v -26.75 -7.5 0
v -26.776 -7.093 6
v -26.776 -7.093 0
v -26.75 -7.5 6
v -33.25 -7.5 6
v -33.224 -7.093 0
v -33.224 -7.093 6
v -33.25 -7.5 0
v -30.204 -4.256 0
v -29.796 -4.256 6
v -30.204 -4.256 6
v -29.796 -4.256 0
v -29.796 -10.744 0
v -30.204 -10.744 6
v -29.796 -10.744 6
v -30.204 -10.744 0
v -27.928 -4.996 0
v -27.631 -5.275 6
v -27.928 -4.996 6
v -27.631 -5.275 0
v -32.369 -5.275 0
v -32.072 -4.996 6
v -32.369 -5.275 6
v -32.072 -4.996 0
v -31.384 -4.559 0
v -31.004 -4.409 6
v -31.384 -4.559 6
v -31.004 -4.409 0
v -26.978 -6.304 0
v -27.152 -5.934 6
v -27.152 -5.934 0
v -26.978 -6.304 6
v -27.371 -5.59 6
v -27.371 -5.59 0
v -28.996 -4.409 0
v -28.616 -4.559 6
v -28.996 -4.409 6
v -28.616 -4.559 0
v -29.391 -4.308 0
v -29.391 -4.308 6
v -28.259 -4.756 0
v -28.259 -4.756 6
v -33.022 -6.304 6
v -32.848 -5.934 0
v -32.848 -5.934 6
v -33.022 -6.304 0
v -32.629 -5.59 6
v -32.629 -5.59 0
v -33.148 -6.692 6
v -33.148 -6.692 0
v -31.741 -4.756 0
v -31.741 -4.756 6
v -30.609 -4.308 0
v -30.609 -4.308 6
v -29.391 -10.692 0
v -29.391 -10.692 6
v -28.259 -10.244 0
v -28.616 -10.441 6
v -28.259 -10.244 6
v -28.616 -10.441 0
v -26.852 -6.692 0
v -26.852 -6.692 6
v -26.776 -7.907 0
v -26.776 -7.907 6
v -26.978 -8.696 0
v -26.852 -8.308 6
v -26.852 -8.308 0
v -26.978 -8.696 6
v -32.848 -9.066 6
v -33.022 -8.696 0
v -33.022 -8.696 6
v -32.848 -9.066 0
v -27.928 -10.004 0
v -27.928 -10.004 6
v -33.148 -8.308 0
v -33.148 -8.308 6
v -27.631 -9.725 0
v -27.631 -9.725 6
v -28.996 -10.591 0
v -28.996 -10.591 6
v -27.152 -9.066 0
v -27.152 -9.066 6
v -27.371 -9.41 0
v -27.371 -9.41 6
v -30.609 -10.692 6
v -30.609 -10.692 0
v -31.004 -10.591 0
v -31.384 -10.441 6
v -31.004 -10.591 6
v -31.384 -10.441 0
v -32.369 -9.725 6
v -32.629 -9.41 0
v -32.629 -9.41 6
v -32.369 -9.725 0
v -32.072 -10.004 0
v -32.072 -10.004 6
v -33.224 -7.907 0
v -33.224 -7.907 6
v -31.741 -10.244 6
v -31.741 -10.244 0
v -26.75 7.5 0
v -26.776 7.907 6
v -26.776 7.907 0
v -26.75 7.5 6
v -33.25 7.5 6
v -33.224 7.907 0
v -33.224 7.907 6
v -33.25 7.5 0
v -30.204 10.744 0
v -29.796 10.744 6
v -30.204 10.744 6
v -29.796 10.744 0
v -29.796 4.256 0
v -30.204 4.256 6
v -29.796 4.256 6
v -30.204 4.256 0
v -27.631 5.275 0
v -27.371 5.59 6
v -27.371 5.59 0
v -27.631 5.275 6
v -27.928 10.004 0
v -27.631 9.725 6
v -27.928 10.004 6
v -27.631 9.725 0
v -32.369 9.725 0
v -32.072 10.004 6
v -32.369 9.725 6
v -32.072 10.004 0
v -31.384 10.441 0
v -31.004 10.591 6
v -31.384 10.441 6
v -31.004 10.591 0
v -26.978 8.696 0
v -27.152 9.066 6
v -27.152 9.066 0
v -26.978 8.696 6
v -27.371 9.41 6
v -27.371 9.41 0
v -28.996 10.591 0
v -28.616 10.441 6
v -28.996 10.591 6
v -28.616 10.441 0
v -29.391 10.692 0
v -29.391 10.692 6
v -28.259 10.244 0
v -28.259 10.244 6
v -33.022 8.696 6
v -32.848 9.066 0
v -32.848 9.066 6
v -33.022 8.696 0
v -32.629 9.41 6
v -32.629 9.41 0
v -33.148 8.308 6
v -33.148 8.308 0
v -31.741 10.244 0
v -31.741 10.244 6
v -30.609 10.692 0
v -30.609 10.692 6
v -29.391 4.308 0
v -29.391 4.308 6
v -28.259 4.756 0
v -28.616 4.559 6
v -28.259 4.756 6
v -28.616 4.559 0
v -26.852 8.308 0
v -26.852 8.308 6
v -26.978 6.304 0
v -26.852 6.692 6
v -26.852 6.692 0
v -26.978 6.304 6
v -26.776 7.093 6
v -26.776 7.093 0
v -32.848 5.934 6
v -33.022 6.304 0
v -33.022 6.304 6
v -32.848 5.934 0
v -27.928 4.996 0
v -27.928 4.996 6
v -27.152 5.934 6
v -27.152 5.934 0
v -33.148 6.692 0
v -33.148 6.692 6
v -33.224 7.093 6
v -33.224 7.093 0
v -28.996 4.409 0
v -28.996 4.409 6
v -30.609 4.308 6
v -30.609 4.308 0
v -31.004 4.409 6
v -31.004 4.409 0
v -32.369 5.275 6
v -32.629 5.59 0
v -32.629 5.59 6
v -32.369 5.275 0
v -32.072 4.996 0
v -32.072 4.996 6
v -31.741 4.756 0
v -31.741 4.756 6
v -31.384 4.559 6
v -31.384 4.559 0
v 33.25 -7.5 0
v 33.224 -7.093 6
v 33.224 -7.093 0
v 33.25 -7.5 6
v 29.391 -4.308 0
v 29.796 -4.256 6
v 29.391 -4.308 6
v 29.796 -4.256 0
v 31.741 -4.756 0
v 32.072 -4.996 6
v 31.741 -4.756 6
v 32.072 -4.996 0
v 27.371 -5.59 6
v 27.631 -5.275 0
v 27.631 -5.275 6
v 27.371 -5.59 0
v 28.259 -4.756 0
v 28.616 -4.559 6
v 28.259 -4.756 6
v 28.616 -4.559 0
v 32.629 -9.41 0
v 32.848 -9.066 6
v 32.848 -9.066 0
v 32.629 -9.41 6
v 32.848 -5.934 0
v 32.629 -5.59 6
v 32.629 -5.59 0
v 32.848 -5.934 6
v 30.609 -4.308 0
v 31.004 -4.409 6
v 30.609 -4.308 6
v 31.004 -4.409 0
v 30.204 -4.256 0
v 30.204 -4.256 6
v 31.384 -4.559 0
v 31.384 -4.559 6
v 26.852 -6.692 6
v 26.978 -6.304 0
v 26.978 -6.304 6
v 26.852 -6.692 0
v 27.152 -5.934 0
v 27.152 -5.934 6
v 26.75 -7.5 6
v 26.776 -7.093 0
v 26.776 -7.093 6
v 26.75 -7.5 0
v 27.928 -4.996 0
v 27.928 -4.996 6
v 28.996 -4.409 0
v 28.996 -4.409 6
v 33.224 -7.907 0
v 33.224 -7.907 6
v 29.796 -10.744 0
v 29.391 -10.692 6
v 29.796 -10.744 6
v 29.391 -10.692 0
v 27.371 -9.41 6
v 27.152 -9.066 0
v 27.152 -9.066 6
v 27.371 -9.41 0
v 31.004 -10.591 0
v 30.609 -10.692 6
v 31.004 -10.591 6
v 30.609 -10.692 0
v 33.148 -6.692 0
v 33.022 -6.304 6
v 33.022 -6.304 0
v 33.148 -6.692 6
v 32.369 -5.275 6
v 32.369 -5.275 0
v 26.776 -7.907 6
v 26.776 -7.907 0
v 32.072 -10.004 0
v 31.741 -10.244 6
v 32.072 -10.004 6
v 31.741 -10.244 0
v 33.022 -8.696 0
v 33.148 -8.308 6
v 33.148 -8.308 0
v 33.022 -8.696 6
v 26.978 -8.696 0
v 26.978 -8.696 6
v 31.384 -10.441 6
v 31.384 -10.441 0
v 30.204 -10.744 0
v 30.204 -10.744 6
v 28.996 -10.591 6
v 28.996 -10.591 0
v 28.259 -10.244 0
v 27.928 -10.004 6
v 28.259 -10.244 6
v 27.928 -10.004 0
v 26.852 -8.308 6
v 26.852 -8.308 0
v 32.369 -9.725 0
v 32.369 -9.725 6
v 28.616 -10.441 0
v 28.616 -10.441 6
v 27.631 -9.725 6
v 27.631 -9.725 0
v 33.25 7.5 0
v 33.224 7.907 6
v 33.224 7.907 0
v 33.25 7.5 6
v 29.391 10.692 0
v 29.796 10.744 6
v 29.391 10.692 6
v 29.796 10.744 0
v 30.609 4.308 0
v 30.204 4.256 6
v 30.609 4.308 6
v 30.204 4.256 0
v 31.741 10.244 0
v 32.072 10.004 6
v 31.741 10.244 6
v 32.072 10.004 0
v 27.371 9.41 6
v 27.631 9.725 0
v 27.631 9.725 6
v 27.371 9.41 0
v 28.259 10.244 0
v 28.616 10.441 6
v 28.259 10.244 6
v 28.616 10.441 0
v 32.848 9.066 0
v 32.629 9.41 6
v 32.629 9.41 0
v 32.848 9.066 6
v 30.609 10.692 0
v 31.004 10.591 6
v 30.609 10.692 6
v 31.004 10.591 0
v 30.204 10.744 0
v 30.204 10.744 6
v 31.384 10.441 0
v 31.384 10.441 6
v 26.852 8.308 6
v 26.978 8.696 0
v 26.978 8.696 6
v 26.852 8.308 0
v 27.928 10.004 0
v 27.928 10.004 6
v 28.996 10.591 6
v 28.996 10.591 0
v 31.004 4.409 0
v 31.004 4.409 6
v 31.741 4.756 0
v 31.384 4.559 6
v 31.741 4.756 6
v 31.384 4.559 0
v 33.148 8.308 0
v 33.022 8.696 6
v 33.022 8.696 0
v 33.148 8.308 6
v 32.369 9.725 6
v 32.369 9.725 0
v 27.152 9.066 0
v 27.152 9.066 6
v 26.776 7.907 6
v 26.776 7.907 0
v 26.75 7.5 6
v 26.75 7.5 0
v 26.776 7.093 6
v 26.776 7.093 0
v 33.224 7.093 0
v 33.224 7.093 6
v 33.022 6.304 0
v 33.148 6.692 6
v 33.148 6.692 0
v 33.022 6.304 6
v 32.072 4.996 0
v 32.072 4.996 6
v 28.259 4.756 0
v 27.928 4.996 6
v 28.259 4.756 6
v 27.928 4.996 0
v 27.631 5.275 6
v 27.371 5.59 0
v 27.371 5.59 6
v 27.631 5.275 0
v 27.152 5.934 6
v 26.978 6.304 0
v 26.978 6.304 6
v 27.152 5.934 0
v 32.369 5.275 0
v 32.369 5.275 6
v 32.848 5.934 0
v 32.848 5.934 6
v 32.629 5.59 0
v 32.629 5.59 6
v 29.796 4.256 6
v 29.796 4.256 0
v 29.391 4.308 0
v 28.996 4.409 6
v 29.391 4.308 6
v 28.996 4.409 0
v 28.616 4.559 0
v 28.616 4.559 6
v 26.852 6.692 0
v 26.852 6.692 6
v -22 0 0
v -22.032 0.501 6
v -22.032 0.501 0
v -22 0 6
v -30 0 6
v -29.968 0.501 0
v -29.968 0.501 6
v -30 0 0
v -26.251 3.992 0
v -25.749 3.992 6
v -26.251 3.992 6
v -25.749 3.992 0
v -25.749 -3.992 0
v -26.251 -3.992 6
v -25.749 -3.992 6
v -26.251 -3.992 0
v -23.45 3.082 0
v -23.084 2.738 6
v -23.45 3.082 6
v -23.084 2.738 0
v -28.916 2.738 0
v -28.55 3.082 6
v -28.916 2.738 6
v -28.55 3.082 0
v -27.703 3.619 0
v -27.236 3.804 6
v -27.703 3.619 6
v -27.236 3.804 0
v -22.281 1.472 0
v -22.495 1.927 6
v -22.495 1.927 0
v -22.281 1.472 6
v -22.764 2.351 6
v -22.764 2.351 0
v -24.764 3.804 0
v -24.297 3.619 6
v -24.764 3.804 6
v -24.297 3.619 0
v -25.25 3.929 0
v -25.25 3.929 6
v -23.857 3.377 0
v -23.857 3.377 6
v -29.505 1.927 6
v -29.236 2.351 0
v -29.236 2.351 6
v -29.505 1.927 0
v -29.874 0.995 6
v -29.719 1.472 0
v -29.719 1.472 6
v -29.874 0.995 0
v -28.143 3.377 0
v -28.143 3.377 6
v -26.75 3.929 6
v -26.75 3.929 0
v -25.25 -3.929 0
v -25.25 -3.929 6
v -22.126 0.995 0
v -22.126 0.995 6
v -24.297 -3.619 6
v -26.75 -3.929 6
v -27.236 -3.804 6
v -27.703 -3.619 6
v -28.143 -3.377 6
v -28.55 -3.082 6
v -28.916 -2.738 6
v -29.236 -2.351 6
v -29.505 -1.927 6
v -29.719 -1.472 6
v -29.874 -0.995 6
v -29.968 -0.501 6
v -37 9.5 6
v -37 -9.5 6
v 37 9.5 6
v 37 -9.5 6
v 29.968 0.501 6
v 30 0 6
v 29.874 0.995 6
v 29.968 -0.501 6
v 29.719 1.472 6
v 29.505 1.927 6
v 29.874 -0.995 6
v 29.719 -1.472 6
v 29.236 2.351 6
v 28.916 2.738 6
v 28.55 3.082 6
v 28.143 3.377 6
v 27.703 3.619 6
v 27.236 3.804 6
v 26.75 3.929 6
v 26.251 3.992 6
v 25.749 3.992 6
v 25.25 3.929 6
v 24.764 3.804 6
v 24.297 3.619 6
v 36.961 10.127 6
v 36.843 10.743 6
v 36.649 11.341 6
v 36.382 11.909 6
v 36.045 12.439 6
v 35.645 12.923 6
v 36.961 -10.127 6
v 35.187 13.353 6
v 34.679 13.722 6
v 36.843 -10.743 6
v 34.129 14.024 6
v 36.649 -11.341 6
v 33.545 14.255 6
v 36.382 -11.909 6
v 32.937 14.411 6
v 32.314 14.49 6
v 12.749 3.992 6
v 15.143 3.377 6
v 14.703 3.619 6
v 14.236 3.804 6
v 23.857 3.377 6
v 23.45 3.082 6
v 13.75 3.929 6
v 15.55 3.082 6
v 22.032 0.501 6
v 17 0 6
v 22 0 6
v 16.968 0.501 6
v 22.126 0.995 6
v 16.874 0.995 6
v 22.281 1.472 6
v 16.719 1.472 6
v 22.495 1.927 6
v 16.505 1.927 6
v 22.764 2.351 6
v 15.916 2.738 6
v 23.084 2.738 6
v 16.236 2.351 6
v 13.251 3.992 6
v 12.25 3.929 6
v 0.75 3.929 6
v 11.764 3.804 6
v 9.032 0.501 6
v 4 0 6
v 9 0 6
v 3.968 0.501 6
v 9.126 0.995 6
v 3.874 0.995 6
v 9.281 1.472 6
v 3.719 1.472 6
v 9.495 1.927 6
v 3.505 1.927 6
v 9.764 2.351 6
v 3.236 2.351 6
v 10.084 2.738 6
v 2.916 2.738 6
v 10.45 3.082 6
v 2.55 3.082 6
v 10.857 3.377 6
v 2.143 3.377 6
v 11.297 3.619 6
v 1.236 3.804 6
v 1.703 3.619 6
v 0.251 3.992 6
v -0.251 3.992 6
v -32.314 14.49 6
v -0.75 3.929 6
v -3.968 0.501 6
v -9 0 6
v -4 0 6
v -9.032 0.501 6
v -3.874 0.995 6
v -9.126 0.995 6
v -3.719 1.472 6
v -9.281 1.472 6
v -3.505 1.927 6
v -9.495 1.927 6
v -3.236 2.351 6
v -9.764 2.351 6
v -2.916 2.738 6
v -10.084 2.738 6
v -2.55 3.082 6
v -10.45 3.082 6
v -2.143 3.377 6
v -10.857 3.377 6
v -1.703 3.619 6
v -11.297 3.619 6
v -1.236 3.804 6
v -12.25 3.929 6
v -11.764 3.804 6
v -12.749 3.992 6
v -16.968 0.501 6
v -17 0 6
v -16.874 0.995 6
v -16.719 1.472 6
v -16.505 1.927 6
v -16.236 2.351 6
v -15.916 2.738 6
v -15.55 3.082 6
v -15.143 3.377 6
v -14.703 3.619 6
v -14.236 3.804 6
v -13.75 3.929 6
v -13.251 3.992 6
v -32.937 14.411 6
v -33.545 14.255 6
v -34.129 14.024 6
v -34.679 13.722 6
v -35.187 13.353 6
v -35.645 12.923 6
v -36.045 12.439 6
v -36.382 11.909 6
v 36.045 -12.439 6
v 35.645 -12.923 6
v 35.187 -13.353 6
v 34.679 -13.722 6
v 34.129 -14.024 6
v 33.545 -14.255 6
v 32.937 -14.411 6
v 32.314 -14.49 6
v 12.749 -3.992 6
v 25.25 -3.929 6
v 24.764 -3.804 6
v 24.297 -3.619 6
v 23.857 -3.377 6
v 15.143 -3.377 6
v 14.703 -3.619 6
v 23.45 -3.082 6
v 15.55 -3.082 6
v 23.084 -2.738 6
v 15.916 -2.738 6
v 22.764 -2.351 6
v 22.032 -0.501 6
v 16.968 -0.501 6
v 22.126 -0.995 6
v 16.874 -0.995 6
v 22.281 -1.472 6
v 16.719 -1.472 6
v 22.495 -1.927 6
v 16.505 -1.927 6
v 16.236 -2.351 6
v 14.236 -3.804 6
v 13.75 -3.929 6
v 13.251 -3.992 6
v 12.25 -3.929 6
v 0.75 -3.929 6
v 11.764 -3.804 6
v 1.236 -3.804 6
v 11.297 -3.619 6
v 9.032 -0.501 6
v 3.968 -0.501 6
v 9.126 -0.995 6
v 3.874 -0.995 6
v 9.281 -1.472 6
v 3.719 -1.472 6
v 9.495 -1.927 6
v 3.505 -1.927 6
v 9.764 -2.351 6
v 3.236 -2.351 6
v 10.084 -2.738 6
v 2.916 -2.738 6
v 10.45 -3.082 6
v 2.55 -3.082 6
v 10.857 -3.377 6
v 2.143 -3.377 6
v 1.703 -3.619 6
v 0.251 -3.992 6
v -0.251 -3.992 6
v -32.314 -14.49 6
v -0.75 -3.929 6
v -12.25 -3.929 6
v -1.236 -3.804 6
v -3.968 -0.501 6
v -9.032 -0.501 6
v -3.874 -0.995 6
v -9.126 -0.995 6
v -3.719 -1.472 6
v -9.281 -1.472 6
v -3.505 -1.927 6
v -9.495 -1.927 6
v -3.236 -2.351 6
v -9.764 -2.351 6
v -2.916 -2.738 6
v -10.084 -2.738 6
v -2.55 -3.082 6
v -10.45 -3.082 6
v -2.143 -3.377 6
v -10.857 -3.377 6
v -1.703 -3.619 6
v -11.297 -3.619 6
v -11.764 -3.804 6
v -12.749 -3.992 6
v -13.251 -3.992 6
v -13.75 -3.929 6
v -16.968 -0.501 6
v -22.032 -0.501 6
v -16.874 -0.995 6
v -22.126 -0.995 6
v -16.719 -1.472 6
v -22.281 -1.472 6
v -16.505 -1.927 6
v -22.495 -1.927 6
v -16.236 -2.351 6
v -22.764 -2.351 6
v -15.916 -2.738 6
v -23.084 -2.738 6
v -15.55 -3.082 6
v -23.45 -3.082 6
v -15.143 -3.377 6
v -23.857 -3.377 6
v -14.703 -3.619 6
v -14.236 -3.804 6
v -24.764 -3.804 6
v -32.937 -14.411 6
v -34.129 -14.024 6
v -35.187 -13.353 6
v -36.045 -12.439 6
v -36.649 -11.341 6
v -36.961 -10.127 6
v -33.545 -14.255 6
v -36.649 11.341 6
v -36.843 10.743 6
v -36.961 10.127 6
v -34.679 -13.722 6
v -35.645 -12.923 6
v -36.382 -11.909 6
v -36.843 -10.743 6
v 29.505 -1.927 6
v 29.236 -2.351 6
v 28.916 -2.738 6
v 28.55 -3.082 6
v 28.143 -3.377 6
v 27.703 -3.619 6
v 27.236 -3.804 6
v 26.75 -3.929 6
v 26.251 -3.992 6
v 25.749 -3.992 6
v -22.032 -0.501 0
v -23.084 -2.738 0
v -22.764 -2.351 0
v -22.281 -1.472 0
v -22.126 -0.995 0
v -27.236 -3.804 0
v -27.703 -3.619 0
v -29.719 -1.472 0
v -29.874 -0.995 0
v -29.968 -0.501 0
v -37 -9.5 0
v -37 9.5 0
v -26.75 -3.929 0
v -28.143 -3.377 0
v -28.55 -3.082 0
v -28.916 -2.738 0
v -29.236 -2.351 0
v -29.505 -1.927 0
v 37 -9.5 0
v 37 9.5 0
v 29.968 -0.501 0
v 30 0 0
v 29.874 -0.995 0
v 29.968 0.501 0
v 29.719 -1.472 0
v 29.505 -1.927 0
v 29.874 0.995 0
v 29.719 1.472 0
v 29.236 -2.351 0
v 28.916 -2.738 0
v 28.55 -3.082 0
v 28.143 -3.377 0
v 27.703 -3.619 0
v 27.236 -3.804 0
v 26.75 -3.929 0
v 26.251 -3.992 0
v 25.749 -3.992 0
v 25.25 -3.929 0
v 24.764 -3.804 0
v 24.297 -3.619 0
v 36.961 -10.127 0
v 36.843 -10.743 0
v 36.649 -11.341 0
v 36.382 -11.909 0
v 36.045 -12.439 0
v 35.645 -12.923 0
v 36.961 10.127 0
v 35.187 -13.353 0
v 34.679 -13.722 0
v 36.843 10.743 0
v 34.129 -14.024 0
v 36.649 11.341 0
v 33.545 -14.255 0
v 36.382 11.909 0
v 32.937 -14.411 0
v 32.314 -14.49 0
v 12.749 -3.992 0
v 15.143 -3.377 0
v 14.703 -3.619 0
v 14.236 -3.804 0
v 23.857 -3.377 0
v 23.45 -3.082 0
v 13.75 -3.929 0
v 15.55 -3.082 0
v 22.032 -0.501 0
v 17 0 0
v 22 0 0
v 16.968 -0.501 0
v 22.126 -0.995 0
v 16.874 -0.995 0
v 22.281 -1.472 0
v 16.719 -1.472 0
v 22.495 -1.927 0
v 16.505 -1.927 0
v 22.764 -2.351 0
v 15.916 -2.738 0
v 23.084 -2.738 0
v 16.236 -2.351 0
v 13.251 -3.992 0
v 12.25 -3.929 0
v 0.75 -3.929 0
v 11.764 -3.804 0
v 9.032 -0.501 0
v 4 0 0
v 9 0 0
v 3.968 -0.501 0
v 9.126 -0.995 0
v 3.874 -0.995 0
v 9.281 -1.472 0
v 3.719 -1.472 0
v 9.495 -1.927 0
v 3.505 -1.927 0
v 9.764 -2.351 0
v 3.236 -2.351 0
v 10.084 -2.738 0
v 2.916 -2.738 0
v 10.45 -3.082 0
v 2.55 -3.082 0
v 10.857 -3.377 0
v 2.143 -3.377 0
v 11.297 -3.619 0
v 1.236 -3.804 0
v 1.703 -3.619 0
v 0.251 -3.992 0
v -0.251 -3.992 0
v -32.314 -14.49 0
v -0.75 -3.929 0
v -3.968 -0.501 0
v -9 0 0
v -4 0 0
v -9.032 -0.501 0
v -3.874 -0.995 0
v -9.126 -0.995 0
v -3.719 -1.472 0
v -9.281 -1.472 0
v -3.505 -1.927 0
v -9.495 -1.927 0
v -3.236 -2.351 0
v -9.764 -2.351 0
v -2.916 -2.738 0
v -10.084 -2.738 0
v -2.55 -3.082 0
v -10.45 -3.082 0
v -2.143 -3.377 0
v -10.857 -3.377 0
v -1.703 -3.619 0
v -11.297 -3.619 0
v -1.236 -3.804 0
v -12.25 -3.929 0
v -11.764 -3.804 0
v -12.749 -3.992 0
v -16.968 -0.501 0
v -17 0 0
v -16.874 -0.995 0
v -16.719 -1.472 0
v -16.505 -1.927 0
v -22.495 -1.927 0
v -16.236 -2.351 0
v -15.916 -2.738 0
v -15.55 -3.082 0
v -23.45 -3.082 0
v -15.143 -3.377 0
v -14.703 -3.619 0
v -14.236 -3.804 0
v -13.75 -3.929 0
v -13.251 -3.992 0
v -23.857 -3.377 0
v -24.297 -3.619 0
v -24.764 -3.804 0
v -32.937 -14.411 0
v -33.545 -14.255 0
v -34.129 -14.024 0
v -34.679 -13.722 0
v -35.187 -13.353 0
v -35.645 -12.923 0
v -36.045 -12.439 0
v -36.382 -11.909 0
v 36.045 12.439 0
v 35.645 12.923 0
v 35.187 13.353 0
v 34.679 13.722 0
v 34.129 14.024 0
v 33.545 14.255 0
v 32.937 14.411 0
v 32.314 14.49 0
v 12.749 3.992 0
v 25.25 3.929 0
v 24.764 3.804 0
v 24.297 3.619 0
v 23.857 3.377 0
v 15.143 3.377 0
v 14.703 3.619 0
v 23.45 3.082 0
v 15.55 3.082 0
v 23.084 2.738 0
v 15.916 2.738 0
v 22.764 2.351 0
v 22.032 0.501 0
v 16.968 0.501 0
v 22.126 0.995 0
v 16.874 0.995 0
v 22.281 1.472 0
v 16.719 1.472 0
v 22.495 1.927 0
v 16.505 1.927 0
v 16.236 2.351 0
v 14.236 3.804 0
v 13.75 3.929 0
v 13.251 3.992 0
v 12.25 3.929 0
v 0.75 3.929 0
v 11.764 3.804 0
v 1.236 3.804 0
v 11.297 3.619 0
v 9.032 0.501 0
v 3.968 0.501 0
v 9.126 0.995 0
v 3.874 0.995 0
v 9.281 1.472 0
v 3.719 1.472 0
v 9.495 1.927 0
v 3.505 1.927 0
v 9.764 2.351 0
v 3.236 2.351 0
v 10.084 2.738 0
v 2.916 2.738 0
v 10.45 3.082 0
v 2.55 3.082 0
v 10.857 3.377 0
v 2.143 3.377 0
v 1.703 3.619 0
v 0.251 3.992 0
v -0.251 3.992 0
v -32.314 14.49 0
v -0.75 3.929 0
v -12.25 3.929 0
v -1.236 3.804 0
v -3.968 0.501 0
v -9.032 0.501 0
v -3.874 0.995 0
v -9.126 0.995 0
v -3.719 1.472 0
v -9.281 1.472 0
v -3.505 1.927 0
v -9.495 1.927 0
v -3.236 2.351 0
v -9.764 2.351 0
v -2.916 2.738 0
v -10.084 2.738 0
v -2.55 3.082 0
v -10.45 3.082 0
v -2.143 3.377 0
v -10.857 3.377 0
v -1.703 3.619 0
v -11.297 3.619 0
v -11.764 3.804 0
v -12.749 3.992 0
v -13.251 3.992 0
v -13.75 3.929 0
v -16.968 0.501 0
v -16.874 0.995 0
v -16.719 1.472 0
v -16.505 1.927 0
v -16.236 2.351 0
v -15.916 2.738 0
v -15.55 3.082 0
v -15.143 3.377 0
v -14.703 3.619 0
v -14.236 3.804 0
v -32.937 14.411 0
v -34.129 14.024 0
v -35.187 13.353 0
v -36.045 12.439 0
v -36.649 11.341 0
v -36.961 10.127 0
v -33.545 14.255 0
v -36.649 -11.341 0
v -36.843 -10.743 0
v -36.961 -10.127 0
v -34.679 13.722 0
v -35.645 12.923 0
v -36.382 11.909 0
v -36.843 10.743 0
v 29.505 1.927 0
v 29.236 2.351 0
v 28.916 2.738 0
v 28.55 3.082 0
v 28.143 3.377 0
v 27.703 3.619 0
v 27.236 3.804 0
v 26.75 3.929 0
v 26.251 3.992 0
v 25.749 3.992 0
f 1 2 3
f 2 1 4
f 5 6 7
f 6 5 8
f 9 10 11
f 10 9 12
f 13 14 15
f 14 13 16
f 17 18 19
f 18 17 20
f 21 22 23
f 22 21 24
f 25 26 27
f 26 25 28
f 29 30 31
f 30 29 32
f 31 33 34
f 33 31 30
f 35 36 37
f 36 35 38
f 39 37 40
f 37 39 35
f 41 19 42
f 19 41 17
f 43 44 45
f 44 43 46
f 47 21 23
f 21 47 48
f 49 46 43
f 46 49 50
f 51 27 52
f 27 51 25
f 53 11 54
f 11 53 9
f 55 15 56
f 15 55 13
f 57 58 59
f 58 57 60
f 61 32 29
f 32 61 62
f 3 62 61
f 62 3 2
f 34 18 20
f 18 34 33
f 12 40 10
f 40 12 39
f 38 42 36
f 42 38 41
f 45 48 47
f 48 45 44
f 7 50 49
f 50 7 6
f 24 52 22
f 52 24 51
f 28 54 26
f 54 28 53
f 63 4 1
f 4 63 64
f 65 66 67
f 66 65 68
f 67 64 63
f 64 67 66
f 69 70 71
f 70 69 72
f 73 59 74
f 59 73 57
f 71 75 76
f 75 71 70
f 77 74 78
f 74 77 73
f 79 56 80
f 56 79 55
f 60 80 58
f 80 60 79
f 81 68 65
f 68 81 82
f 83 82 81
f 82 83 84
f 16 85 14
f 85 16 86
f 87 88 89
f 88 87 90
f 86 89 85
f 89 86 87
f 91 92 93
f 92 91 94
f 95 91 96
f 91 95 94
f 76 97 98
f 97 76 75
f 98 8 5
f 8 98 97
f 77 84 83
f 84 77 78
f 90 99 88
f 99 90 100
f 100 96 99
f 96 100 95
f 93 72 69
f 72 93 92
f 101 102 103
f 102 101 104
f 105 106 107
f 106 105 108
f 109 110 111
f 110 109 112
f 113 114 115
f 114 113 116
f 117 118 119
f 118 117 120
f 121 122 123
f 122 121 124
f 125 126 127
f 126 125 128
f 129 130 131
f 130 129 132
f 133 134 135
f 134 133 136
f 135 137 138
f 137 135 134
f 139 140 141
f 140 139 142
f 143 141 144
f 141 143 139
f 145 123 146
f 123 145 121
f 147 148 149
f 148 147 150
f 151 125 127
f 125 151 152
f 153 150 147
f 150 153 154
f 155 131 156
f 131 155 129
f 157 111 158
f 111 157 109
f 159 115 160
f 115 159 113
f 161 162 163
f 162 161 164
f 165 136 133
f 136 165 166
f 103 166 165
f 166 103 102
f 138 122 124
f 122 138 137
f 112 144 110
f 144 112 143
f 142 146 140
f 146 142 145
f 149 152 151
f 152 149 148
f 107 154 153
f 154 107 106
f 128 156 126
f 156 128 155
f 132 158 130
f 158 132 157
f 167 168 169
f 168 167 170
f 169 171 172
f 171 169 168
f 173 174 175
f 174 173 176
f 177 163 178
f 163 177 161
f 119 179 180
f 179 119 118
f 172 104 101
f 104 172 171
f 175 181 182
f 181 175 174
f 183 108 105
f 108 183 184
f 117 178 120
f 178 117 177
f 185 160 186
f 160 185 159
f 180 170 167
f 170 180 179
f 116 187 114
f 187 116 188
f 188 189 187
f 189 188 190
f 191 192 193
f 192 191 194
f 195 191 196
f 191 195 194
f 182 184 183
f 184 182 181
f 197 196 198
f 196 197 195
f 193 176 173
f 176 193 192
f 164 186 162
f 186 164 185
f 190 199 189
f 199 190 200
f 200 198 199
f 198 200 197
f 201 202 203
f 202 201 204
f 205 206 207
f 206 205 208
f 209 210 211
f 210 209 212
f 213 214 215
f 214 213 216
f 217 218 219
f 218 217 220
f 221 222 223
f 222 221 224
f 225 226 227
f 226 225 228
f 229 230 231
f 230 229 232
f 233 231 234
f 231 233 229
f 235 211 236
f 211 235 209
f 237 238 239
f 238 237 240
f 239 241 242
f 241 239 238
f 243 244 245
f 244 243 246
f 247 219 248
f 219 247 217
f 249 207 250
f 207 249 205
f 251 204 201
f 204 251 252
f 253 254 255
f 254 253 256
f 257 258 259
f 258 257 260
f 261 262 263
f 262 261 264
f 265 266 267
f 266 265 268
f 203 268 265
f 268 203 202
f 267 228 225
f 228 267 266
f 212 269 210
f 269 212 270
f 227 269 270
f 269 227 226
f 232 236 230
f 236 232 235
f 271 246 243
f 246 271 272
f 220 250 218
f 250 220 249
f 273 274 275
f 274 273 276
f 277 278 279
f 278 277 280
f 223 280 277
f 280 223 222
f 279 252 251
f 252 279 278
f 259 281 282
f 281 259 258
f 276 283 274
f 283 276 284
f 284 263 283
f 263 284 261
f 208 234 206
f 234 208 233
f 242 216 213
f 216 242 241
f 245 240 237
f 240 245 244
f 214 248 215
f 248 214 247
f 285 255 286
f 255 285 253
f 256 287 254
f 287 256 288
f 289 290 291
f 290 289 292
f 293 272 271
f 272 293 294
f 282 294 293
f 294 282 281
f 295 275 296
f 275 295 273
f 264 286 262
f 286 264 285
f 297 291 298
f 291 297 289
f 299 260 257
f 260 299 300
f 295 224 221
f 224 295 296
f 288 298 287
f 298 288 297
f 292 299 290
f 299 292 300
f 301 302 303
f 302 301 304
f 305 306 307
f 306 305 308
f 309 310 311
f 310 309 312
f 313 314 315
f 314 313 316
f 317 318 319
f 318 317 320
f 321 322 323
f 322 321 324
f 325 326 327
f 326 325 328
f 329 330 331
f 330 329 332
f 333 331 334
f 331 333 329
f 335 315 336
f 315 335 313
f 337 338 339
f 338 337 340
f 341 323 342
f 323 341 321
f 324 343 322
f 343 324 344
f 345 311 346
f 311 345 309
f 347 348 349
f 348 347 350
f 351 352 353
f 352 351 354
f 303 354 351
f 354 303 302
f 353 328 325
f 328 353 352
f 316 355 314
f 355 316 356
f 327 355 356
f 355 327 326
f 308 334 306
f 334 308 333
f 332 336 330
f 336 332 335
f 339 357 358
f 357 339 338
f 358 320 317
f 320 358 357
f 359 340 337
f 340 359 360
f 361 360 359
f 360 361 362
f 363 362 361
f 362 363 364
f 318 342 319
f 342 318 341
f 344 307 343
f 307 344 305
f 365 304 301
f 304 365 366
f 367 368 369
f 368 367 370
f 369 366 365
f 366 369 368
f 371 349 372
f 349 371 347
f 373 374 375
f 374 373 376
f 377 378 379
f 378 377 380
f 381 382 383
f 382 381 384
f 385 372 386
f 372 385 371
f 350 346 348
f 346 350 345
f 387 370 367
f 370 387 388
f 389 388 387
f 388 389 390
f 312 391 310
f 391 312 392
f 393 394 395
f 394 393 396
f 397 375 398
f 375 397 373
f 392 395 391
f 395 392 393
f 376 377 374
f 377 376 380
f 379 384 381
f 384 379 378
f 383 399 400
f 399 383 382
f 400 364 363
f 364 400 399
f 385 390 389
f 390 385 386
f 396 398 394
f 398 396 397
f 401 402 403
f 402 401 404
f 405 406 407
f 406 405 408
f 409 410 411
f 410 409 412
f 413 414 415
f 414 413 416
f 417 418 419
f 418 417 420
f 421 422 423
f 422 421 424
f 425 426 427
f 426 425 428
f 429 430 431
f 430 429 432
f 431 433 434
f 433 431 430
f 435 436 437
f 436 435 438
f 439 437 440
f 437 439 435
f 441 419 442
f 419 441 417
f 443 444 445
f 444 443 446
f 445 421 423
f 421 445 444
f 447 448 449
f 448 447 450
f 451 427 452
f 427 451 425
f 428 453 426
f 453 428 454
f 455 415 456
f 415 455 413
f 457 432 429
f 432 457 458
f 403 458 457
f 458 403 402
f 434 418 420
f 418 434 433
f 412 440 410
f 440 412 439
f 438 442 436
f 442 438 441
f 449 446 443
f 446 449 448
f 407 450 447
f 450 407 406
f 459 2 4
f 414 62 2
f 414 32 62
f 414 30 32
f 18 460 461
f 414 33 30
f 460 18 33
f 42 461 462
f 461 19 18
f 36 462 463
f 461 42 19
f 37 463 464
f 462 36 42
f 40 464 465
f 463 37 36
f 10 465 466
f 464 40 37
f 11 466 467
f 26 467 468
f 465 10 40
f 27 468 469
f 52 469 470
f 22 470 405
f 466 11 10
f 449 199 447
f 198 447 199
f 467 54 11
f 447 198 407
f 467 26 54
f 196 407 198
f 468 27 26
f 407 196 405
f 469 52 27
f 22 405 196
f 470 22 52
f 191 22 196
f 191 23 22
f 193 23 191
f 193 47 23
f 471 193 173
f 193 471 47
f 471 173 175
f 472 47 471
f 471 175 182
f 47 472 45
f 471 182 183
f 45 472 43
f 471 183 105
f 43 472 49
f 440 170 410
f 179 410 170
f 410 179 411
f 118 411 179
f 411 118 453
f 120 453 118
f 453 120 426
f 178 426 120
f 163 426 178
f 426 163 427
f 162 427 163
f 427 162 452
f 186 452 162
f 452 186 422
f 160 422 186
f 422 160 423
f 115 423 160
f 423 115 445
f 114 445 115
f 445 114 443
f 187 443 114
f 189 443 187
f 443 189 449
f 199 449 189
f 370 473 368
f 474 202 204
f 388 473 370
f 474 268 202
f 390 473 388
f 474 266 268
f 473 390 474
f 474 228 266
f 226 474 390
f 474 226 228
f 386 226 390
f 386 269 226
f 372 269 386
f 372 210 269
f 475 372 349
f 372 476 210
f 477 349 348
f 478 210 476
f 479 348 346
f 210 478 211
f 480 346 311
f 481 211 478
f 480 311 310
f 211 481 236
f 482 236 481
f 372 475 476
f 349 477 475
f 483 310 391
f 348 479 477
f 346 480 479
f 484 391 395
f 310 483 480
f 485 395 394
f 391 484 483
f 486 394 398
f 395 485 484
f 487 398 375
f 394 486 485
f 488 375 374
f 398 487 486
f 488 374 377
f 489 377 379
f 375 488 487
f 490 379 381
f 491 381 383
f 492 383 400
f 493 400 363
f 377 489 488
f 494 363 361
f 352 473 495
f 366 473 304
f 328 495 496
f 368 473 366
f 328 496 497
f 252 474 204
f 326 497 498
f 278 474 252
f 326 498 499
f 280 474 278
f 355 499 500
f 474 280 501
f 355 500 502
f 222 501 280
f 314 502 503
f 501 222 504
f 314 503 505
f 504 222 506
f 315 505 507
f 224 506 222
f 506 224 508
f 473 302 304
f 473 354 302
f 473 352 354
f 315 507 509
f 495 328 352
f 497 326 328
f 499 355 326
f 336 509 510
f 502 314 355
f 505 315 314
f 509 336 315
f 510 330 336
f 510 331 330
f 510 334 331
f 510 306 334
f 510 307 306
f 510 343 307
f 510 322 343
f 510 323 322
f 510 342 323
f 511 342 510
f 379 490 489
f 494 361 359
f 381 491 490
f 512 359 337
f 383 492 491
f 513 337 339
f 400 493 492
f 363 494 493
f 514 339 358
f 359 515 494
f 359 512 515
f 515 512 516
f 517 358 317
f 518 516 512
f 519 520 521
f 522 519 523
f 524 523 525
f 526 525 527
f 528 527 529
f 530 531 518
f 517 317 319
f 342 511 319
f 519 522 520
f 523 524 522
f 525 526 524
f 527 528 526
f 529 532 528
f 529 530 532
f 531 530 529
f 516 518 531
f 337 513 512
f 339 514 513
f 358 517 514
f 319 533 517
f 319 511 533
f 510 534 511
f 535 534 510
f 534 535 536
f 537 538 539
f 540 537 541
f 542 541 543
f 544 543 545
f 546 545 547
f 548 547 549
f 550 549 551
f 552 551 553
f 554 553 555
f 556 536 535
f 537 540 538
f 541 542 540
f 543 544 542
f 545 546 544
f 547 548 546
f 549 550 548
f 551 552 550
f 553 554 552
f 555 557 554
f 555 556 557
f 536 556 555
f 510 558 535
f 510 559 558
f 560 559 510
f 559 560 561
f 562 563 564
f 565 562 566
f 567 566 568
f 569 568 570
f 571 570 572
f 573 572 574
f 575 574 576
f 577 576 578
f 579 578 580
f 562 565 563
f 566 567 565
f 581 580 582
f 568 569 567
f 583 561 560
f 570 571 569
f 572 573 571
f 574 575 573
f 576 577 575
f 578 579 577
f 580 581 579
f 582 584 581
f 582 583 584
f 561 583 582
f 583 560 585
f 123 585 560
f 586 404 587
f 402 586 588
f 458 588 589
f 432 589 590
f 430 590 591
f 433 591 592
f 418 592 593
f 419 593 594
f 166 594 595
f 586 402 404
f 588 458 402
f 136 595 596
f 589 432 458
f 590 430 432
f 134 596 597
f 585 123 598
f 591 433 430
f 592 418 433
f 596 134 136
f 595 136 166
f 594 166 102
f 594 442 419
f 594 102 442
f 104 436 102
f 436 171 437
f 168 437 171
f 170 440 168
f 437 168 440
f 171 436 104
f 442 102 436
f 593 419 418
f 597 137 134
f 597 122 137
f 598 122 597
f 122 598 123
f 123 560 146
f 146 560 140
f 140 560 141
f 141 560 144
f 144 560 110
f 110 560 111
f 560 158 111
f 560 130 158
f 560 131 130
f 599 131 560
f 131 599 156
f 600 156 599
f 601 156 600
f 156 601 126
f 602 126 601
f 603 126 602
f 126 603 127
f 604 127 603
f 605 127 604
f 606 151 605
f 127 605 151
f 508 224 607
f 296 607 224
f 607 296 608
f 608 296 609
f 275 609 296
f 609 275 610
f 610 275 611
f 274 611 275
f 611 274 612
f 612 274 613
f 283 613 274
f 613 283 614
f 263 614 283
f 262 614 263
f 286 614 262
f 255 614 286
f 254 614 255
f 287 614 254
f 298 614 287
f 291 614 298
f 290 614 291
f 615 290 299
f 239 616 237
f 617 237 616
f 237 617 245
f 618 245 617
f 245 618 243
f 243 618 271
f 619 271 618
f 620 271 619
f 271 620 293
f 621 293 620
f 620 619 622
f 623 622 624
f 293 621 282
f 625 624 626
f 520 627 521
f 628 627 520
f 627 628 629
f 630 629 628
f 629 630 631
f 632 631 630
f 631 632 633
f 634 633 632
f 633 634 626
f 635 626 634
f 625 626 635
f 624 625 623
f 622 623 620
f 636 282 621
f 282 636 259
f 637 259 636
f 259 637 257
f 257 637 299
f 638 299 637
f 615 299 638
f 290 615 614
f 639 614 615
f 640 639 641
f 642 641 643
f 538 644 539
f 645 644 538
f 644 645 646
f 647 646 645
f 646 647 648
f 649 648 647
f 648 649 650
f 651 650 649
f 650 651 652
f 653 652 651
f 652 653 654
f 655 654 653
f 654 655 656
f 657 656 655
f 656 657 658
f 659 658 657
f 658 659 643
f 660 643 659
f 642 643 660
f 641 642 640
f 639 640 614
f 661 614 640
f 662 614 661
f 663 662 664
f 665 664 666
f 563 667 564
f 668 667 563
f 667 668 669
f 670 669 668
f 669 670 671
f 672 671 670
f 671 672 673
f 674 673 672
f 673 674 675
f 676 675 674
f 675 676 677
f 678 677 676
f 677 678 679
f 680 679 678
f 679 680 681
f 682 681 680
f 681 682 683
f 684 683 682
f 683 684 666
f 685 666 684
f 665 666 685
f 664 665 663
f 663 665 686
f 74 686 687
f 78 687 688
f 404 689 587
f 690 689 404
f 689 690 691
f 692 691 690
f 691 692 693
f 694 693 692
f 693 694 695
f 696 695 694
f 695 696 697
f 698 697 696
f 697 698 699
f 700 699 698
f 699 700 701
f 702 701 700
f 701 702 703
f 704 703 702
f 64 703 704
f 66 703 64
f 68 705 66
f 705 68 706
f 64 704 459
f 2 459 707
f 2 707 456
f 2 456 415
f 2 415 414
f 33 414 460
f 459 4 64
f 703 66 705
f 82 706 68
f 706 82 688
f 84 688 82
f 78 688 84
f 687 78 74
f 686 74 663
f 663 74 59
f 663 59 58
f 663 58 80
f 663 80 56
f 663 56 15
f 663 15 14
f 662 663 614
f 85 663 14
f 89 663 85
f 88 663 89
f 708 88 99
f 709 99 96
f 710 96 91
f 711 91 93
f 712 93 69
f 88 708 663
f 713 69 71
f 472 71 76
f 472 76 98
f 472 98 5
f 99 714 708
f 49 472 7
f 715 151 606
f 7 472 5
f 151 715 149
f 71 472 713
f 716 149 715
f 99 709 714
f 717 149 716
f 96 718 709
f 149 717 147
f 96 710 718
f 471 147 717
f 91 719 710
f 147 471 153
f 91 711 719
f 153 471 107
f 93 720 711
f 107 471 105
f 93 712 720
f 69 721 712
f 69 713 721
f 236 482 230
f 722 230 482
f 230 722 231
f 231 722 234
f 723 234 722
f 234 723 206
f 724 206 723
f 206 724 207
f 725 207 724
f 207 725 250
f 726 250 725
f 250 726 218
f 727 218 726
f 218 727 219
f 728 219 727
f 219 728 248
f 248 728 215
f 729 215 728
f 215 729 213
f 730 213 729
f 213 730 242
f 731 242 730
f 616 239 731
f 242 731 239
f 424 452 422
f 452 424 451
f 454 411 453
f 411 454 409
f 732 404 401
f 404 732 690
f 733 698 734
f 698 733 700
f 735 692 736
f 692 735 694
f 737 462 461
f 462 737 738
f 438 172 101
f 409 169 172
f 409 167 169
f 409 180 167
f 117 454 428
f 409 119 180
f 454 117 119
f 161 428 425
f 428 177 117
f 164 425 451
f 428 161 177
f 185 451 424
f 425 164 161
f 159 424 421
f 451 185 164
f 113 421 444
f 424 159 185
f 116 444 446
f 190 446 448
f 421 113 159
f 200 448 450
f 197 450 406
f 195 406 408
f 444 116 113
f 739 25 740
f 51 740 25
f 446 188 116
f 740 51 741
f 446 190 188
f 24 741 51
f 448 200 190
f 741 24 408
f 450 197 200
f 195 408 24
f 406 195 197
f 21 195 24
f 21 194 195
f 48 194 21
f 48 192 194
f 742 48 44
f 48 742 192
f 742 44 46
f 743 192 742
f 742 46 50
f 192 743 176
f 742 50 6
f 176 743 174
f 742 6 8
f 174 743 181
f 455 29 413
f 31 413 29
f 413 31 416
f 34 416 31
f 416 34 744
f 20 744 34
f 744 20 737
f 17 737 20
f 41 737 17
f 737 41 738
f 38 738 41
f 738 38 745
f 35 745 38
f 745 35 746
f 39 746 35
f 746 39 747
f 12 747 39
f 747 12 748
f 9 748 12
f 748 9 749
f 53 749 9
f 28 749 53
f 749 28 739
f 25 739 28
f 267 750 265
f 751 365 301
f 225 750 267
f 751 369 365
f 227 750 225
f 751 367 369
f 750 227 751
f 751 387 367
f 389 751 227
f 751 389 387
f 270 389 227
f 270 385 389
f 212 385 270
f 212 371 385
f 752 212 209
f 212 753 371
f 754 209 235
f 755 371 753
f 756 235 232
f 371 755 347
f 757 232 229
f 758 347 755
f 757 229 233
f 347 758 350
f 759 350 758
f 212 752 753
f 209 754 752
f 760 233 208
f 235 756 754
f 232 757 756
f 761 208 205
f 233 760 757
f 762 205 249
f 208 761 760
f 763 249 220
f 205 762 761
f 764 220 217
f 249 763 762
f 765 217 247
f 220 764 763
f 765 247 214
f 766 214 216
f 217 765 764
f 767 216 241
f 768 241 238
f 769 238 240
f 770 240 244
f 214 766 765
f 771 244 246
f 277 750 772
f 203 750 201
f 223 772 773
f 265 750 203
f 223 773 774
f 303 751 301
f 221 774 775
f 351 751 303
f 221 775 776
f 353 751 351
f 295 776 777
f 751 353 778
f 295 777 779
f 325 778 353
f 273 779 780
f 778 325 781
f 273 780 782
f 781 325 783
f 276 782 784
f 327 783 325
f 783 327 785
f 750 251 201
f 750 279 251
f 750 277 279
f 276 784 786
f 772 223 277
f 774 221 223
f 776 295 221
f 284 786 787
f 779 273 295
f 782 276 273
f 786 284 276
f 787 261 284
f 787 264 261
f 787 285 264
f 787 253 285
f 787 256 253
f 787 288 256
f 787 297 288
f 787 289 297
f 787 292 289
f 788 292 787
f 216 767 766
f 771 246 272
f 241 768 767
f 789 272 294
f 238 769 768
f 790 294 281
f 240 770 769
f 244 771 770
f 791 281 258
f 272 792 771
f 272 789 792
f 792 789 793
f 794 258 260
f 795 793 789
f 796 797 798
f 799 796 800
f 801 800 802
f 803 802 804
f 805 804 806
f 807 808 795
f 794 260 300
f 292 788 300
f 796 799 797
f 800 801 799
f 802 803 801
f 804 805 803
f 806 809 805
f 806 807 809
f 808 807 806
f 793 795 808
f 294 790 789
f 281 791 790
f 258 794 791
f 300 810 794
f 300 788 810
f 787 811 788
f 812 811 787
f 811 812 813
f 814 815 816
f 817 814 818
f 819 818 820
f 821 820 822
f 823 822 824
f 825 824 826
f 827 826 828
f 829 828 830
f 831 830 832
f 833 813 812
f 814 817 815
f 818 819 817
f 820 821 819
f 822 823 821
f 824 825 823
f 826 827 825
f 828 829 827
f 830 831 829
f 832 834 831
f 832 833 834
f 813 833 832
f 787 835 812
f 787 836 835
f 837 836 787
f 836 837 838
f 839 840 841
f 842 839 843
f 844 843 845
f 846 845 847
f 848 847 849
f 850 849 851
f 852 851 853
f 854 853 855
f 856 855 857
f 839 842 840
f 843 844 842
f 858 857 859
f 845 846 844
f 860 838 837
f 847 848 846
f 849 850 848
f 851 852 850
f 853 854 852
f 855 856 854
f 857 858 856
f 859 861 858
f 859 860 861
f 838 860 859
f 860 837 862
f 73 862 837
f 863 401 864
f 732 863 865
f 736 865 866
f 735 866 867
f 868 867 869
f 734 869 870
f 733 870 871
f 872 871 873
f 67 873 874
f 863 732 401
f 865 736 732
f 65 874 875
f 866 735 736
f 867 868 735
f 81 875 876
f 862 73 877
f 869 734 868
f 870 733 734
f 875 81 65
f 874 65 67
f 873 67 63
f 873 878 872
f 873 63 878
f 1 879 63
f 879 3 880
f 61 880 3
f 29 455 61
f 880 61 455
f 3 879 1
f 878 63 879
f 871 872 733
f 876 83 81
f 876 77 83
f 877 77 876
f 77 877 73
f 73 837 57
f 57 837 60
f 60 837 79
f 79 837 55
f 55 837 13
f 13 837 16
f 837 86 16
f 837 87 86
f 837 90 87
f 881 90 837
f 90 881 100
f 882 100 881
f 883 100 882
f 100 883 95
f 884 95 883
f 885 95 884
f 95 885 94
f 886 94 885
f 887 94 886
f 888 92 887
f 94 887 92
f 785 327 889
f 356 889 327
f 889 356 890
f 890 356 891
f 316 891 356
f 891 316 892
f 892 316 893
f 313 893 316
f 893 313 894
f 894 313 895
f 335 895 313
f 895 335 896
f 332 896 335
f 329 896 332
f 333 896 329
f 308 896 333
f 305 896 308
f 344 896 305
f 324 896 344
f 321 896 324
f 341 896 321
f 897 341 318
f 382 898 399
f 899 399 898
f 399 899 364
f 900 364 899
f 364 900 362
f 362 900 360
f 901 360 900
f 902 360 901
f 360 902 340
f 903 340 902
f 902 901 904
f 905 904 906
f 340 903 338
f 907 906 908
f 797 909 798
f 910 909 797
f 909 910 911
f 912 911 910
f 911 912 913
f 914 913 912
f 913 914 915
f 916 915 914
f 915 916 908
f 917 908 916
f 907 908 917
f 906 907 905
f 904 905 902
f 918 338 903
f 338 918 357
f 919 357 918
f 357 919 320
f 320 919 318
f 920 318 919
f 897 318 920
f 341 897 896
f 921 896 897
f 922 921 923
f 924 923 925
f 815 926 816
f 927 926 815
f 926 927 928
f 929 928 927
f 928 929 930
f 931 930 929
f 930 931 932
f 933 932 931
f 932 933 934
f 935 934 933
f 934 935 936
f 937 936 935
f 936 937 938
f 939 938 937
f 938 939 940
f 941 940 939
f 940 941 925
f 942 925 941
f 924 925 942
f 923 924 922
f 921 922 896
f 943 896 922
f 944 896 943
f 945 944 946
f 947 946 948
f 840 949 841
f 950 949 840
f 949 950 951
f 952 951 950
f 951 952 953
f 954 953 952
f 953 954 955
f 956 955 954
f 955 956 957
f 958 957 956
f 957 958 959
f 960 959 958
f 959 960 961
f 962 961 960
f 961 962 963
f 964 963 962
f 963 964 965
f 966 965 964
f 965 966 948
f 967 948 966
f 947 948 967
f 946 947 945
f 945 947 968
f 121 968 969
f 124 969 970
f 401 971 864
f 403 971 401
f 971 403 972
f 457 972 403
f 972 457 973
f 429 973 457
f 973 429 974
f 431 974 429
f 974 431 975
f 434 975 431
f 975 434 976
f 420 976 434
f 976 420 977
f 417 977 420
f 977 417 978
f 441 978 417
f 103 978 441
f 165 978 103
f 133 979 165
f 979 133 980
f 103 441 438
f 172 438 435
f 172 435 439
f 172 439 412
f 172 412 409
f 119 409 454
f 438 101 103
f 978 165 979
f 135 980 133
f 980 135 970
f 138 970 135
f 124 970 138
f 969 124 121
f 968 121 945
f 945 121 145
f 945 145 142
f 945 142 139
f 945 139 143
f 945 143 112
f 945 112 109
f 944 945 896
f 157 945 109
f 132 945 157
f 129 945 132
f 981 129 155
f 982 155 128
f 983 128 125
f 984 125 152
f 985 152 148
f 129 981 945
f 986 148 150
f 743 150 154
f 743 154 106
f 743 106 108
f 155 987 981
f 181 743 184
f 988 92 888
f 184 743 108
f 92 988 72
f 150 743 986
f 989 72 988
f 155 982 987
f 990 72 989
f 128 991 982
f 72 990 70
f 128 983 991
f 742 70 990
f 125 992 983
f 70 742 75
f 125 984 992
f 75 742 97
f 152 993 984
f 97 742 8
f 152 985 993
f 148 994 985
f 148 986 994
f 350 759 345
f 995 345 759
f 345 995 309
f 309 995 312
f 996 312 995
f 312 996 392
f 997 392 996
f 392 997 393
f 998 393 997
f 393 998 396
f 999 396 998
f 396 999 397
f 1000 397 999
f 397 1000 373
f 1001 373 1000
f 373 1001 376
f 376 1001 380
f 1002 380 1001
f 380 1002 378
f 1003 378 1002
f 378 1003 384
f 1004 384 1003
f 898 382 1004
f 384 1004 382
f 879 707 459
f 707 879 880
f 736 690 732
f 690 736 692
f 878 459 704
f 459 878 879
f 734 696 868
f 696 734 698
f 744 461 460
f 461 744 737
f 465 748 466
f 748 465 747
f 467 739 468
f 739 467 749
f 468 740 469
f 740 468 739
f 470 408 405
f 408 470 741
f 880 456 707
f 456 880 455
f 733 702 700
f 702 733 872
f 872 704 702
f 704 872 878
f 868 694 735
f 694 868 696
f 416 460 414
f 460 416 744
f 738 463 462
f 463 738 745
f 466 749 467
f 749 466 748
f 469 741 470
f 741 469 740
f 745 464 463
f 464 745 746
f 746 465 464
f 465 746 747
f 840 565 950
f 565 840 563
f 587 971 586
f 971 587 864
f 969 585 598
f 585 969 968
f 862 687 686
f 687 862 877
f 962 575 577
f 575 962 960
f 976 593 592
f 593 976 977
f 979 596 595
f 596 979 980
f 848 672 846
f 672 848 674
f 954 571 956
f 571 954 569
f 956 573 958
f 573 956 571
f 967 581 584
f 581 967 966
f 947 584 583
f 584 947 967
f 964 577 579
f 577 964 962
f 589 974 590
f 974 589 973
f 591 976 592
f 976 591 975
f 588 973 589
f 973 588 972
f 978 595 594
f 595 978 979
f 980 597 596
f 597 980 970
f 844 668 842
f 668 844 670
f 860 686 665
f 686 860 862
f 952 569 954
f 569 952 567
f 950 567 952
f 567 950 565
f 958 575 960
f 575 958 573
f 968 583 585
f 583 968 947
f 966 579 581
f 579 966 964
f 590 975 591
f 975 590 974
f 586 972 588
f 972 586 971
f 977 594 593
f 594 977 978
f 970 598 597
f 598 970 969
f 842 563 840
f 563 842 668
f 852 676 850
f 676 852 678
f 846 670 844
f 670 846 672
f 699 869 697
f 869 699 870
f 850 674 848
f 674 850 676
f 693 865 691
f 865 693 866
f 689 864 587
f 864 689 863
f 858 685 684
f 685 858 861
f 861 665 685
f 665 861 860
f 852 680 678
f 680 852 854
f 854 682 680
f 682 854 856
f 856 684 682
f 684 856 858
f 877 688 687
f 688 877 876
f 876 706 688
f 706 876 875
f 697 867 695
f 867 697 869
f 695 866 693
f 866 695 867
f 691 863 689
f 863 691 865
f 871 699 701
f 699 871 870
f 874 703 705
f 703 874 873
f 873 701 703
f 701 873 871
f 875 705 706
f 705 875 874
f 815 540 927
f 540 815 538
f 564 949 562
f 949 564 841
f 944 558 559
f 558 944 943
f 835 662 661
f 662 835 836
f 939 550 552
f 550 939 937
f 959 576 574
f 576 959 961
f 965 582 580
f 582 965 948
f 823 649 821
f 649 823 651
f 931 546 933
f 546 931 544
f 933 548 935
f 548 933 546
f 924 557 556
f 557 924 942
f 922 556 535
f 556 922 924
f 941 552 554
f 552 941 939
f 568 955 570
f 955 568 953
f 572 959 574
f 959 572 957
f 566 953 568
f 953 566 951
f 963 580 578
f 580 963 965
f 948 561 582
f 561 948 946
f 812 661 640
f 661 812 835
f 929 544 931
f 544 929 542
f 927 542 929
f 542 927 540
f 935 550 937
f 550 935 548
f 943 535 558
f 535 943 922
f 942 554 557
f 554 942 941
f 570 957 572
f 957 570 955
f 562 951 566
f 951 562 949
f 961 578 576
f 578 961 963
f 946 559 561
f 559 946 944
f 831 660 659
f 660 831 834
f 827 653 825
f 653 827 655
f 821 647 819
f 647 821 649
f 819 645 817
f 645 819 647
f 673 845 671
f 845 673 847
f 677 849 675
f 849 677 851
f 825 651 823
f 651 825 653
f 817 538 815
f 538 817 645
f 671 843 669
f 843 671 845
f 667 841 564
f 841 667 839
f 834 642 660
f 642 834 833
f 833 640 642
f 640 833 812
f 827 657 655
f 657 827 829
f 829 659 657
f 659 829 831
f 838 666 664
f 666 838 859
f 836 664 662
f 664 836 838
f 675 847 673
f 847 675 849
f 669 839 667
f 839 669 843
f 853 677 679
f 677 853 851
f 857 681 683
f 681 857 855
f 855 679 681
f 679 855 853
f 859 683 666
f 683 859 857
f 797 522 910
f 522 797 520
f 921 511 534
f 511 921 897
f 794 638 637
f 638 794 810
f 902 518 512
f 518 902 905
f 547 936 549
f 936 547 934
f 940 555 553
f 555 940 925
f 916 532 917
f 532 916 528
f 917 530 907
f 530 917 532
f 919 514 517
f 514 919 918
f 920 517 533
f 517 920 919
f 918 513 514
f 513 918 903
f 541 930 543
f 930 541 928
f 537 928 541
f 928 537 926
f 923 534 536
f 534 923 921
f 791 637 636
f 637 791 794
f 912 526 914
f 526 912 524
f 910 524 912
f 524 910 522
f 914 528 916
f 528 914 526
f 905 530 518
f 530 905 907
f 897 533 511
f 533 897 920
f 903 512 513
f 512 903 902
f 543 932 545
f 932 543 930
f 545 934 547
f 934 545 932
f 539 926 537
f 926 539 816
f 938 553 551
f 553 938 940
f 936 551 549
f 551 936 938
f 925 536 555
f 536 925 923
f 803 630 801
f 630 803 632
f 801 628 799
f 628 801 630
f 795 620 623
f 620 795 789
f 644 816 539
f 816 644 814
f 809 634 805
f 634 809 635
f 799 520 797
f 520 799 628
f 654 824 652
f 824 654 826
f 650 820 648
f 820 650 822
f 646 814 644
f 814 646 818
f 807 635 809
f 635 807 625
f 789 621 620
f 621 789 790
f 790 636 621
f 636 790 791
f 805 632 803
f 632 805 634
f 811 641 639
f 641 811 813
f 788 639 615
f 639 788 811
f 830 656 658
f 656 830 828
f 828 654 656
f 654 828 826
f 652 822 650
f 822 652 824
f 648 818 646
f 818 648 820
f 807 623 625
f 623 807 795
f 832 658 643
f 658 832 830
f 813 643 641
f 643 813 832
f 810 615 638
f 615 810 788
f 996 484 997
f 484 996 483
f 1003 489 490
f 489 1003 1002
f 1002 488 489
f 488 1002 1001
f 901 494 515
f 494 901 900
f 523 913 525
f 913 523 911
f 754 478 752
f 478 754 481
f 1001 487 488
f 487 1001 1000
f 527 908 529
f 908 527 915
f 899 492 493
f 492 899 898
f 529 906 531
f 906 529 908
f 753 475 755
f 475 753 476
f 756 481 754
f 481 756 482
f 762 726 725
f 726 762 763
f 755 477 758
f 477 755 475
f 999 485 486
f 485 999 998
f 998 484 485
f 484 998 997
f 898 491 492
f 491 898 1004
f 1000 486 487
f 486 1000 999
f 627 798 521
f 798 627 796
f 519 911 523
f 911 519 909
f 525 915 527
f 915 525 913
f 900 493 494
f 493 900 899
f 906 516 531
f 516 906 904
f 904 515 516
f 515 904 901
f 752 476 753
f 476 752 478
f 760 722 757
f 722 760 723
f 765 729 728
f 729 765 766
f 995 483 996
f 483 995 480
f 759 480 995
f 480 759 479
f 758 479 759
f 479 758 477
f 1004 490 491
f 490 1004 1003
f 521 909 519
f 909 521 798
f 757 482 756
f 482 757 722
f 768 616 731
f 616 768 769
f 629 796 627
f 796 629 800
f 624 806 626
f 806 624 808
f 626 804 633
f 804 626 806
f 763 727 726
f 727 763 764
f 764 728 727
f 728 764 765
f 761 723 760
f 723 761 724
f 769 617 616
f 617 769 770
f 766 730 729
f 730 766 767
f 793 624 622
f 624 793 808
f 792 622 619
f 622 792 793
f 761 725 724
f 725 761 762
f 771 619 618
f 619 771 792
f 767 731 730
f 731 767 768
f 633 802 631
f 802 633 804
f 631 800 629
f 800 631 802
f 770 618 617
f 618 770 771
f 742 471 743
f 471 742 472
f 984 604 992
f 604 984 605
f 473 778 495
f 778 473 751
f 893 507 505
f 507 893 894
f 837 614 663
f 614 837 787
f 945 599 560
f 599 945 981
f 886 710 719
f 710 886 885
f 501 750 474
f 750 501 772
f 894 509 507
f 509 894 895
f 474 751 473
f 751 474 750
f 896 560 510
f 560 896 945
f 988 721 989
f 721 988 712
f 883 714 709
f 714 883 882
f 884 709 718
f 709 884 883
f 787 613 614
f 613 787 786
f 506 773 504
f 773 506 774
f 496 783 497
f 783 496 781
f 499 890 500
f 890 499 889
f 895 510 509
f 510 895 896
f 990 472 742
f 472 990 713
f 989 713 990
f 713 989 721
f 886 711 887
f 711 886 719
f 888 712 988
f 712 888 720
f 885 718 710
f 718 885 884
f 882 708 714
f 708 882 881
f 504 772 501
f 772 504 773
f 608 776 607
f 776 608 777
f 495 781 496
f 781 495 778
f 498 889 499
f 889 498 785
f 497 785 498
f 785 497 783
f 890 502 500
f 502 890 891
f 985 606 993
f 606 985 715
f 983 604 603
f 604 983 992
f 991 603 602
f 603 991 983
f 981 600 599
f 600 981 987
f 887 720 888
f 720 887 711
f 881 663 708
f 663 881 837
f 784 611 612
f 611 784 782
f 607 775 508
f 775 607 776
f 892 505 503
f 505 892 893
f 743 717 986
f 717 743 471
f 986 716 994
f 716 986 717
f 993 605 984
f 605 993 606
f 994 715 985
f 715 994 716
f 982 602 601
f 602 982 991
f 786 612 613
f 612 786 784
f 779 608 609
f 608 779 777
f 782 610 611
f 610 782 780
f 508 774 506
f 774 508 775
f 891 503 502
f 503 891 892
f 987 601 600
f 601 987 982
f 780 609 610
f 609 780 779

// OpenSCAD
$fn = 50;


difference() {
	union() {
		hull() {
			translate(v = [-32.0000000000, 9.5000000000, 0]) {
				cylinder(h = 6, r = 5);
			}
			translate(v = [32.0000000000, 9.5000000000, 0]) {
				cylinder(h = 6, r = 5);
			}
			translate(v = [-32.0000000000, -9.5000000000, 0]) {
				cylinder(h = 6, r = 5);
			}
			translate(v = [32.0000000000, -9.5000000000, 0]) {
				cylinder(h = 6, r = 5);
			}
		}
	}
	union() {
		#translate(v = [-30.0000000000, -7.5000000000, -100.0000000000]) {
			cylinder(h = 200, r = 3.2500000000);
		}
		#translate(v = [-30.0000000000, 7.5000000000, -100.0000000000]) {
			cylinder(h = 200, r = 3.2500000000);
		}
		#translate(v = [30.0000000000, -7.5000000000, -100.0000000000]) {
			cylinder(h = 200, r = 3.2500000000);
		}
		#translate(v = [30.0000000000, 7.5000000000, -100.0000000000]) {
			cylinder(h = 200, r = 3.2500000000);
		}
		#translate(v = [-26.0000000000, 0, 0]) {
			cylinder(h = 6, r = 4.0000000000);
		}
		#translate(v = [-13.0000000000, 0, 0]) {
			cylinder(h = 6, r = 4.0000000000);
		}
		#cylinder(h = 6, r = 4.0000000000);
		#translate(v = [13.0000000000, 0, 0]) {
			cylinder(h = 6, r = 4.0000000000);
		}
		#translate(v = [26.0000000000, 0, 0]) {
			cylinder(h = 6, r = 4.0000000000);
		}
	}
}
